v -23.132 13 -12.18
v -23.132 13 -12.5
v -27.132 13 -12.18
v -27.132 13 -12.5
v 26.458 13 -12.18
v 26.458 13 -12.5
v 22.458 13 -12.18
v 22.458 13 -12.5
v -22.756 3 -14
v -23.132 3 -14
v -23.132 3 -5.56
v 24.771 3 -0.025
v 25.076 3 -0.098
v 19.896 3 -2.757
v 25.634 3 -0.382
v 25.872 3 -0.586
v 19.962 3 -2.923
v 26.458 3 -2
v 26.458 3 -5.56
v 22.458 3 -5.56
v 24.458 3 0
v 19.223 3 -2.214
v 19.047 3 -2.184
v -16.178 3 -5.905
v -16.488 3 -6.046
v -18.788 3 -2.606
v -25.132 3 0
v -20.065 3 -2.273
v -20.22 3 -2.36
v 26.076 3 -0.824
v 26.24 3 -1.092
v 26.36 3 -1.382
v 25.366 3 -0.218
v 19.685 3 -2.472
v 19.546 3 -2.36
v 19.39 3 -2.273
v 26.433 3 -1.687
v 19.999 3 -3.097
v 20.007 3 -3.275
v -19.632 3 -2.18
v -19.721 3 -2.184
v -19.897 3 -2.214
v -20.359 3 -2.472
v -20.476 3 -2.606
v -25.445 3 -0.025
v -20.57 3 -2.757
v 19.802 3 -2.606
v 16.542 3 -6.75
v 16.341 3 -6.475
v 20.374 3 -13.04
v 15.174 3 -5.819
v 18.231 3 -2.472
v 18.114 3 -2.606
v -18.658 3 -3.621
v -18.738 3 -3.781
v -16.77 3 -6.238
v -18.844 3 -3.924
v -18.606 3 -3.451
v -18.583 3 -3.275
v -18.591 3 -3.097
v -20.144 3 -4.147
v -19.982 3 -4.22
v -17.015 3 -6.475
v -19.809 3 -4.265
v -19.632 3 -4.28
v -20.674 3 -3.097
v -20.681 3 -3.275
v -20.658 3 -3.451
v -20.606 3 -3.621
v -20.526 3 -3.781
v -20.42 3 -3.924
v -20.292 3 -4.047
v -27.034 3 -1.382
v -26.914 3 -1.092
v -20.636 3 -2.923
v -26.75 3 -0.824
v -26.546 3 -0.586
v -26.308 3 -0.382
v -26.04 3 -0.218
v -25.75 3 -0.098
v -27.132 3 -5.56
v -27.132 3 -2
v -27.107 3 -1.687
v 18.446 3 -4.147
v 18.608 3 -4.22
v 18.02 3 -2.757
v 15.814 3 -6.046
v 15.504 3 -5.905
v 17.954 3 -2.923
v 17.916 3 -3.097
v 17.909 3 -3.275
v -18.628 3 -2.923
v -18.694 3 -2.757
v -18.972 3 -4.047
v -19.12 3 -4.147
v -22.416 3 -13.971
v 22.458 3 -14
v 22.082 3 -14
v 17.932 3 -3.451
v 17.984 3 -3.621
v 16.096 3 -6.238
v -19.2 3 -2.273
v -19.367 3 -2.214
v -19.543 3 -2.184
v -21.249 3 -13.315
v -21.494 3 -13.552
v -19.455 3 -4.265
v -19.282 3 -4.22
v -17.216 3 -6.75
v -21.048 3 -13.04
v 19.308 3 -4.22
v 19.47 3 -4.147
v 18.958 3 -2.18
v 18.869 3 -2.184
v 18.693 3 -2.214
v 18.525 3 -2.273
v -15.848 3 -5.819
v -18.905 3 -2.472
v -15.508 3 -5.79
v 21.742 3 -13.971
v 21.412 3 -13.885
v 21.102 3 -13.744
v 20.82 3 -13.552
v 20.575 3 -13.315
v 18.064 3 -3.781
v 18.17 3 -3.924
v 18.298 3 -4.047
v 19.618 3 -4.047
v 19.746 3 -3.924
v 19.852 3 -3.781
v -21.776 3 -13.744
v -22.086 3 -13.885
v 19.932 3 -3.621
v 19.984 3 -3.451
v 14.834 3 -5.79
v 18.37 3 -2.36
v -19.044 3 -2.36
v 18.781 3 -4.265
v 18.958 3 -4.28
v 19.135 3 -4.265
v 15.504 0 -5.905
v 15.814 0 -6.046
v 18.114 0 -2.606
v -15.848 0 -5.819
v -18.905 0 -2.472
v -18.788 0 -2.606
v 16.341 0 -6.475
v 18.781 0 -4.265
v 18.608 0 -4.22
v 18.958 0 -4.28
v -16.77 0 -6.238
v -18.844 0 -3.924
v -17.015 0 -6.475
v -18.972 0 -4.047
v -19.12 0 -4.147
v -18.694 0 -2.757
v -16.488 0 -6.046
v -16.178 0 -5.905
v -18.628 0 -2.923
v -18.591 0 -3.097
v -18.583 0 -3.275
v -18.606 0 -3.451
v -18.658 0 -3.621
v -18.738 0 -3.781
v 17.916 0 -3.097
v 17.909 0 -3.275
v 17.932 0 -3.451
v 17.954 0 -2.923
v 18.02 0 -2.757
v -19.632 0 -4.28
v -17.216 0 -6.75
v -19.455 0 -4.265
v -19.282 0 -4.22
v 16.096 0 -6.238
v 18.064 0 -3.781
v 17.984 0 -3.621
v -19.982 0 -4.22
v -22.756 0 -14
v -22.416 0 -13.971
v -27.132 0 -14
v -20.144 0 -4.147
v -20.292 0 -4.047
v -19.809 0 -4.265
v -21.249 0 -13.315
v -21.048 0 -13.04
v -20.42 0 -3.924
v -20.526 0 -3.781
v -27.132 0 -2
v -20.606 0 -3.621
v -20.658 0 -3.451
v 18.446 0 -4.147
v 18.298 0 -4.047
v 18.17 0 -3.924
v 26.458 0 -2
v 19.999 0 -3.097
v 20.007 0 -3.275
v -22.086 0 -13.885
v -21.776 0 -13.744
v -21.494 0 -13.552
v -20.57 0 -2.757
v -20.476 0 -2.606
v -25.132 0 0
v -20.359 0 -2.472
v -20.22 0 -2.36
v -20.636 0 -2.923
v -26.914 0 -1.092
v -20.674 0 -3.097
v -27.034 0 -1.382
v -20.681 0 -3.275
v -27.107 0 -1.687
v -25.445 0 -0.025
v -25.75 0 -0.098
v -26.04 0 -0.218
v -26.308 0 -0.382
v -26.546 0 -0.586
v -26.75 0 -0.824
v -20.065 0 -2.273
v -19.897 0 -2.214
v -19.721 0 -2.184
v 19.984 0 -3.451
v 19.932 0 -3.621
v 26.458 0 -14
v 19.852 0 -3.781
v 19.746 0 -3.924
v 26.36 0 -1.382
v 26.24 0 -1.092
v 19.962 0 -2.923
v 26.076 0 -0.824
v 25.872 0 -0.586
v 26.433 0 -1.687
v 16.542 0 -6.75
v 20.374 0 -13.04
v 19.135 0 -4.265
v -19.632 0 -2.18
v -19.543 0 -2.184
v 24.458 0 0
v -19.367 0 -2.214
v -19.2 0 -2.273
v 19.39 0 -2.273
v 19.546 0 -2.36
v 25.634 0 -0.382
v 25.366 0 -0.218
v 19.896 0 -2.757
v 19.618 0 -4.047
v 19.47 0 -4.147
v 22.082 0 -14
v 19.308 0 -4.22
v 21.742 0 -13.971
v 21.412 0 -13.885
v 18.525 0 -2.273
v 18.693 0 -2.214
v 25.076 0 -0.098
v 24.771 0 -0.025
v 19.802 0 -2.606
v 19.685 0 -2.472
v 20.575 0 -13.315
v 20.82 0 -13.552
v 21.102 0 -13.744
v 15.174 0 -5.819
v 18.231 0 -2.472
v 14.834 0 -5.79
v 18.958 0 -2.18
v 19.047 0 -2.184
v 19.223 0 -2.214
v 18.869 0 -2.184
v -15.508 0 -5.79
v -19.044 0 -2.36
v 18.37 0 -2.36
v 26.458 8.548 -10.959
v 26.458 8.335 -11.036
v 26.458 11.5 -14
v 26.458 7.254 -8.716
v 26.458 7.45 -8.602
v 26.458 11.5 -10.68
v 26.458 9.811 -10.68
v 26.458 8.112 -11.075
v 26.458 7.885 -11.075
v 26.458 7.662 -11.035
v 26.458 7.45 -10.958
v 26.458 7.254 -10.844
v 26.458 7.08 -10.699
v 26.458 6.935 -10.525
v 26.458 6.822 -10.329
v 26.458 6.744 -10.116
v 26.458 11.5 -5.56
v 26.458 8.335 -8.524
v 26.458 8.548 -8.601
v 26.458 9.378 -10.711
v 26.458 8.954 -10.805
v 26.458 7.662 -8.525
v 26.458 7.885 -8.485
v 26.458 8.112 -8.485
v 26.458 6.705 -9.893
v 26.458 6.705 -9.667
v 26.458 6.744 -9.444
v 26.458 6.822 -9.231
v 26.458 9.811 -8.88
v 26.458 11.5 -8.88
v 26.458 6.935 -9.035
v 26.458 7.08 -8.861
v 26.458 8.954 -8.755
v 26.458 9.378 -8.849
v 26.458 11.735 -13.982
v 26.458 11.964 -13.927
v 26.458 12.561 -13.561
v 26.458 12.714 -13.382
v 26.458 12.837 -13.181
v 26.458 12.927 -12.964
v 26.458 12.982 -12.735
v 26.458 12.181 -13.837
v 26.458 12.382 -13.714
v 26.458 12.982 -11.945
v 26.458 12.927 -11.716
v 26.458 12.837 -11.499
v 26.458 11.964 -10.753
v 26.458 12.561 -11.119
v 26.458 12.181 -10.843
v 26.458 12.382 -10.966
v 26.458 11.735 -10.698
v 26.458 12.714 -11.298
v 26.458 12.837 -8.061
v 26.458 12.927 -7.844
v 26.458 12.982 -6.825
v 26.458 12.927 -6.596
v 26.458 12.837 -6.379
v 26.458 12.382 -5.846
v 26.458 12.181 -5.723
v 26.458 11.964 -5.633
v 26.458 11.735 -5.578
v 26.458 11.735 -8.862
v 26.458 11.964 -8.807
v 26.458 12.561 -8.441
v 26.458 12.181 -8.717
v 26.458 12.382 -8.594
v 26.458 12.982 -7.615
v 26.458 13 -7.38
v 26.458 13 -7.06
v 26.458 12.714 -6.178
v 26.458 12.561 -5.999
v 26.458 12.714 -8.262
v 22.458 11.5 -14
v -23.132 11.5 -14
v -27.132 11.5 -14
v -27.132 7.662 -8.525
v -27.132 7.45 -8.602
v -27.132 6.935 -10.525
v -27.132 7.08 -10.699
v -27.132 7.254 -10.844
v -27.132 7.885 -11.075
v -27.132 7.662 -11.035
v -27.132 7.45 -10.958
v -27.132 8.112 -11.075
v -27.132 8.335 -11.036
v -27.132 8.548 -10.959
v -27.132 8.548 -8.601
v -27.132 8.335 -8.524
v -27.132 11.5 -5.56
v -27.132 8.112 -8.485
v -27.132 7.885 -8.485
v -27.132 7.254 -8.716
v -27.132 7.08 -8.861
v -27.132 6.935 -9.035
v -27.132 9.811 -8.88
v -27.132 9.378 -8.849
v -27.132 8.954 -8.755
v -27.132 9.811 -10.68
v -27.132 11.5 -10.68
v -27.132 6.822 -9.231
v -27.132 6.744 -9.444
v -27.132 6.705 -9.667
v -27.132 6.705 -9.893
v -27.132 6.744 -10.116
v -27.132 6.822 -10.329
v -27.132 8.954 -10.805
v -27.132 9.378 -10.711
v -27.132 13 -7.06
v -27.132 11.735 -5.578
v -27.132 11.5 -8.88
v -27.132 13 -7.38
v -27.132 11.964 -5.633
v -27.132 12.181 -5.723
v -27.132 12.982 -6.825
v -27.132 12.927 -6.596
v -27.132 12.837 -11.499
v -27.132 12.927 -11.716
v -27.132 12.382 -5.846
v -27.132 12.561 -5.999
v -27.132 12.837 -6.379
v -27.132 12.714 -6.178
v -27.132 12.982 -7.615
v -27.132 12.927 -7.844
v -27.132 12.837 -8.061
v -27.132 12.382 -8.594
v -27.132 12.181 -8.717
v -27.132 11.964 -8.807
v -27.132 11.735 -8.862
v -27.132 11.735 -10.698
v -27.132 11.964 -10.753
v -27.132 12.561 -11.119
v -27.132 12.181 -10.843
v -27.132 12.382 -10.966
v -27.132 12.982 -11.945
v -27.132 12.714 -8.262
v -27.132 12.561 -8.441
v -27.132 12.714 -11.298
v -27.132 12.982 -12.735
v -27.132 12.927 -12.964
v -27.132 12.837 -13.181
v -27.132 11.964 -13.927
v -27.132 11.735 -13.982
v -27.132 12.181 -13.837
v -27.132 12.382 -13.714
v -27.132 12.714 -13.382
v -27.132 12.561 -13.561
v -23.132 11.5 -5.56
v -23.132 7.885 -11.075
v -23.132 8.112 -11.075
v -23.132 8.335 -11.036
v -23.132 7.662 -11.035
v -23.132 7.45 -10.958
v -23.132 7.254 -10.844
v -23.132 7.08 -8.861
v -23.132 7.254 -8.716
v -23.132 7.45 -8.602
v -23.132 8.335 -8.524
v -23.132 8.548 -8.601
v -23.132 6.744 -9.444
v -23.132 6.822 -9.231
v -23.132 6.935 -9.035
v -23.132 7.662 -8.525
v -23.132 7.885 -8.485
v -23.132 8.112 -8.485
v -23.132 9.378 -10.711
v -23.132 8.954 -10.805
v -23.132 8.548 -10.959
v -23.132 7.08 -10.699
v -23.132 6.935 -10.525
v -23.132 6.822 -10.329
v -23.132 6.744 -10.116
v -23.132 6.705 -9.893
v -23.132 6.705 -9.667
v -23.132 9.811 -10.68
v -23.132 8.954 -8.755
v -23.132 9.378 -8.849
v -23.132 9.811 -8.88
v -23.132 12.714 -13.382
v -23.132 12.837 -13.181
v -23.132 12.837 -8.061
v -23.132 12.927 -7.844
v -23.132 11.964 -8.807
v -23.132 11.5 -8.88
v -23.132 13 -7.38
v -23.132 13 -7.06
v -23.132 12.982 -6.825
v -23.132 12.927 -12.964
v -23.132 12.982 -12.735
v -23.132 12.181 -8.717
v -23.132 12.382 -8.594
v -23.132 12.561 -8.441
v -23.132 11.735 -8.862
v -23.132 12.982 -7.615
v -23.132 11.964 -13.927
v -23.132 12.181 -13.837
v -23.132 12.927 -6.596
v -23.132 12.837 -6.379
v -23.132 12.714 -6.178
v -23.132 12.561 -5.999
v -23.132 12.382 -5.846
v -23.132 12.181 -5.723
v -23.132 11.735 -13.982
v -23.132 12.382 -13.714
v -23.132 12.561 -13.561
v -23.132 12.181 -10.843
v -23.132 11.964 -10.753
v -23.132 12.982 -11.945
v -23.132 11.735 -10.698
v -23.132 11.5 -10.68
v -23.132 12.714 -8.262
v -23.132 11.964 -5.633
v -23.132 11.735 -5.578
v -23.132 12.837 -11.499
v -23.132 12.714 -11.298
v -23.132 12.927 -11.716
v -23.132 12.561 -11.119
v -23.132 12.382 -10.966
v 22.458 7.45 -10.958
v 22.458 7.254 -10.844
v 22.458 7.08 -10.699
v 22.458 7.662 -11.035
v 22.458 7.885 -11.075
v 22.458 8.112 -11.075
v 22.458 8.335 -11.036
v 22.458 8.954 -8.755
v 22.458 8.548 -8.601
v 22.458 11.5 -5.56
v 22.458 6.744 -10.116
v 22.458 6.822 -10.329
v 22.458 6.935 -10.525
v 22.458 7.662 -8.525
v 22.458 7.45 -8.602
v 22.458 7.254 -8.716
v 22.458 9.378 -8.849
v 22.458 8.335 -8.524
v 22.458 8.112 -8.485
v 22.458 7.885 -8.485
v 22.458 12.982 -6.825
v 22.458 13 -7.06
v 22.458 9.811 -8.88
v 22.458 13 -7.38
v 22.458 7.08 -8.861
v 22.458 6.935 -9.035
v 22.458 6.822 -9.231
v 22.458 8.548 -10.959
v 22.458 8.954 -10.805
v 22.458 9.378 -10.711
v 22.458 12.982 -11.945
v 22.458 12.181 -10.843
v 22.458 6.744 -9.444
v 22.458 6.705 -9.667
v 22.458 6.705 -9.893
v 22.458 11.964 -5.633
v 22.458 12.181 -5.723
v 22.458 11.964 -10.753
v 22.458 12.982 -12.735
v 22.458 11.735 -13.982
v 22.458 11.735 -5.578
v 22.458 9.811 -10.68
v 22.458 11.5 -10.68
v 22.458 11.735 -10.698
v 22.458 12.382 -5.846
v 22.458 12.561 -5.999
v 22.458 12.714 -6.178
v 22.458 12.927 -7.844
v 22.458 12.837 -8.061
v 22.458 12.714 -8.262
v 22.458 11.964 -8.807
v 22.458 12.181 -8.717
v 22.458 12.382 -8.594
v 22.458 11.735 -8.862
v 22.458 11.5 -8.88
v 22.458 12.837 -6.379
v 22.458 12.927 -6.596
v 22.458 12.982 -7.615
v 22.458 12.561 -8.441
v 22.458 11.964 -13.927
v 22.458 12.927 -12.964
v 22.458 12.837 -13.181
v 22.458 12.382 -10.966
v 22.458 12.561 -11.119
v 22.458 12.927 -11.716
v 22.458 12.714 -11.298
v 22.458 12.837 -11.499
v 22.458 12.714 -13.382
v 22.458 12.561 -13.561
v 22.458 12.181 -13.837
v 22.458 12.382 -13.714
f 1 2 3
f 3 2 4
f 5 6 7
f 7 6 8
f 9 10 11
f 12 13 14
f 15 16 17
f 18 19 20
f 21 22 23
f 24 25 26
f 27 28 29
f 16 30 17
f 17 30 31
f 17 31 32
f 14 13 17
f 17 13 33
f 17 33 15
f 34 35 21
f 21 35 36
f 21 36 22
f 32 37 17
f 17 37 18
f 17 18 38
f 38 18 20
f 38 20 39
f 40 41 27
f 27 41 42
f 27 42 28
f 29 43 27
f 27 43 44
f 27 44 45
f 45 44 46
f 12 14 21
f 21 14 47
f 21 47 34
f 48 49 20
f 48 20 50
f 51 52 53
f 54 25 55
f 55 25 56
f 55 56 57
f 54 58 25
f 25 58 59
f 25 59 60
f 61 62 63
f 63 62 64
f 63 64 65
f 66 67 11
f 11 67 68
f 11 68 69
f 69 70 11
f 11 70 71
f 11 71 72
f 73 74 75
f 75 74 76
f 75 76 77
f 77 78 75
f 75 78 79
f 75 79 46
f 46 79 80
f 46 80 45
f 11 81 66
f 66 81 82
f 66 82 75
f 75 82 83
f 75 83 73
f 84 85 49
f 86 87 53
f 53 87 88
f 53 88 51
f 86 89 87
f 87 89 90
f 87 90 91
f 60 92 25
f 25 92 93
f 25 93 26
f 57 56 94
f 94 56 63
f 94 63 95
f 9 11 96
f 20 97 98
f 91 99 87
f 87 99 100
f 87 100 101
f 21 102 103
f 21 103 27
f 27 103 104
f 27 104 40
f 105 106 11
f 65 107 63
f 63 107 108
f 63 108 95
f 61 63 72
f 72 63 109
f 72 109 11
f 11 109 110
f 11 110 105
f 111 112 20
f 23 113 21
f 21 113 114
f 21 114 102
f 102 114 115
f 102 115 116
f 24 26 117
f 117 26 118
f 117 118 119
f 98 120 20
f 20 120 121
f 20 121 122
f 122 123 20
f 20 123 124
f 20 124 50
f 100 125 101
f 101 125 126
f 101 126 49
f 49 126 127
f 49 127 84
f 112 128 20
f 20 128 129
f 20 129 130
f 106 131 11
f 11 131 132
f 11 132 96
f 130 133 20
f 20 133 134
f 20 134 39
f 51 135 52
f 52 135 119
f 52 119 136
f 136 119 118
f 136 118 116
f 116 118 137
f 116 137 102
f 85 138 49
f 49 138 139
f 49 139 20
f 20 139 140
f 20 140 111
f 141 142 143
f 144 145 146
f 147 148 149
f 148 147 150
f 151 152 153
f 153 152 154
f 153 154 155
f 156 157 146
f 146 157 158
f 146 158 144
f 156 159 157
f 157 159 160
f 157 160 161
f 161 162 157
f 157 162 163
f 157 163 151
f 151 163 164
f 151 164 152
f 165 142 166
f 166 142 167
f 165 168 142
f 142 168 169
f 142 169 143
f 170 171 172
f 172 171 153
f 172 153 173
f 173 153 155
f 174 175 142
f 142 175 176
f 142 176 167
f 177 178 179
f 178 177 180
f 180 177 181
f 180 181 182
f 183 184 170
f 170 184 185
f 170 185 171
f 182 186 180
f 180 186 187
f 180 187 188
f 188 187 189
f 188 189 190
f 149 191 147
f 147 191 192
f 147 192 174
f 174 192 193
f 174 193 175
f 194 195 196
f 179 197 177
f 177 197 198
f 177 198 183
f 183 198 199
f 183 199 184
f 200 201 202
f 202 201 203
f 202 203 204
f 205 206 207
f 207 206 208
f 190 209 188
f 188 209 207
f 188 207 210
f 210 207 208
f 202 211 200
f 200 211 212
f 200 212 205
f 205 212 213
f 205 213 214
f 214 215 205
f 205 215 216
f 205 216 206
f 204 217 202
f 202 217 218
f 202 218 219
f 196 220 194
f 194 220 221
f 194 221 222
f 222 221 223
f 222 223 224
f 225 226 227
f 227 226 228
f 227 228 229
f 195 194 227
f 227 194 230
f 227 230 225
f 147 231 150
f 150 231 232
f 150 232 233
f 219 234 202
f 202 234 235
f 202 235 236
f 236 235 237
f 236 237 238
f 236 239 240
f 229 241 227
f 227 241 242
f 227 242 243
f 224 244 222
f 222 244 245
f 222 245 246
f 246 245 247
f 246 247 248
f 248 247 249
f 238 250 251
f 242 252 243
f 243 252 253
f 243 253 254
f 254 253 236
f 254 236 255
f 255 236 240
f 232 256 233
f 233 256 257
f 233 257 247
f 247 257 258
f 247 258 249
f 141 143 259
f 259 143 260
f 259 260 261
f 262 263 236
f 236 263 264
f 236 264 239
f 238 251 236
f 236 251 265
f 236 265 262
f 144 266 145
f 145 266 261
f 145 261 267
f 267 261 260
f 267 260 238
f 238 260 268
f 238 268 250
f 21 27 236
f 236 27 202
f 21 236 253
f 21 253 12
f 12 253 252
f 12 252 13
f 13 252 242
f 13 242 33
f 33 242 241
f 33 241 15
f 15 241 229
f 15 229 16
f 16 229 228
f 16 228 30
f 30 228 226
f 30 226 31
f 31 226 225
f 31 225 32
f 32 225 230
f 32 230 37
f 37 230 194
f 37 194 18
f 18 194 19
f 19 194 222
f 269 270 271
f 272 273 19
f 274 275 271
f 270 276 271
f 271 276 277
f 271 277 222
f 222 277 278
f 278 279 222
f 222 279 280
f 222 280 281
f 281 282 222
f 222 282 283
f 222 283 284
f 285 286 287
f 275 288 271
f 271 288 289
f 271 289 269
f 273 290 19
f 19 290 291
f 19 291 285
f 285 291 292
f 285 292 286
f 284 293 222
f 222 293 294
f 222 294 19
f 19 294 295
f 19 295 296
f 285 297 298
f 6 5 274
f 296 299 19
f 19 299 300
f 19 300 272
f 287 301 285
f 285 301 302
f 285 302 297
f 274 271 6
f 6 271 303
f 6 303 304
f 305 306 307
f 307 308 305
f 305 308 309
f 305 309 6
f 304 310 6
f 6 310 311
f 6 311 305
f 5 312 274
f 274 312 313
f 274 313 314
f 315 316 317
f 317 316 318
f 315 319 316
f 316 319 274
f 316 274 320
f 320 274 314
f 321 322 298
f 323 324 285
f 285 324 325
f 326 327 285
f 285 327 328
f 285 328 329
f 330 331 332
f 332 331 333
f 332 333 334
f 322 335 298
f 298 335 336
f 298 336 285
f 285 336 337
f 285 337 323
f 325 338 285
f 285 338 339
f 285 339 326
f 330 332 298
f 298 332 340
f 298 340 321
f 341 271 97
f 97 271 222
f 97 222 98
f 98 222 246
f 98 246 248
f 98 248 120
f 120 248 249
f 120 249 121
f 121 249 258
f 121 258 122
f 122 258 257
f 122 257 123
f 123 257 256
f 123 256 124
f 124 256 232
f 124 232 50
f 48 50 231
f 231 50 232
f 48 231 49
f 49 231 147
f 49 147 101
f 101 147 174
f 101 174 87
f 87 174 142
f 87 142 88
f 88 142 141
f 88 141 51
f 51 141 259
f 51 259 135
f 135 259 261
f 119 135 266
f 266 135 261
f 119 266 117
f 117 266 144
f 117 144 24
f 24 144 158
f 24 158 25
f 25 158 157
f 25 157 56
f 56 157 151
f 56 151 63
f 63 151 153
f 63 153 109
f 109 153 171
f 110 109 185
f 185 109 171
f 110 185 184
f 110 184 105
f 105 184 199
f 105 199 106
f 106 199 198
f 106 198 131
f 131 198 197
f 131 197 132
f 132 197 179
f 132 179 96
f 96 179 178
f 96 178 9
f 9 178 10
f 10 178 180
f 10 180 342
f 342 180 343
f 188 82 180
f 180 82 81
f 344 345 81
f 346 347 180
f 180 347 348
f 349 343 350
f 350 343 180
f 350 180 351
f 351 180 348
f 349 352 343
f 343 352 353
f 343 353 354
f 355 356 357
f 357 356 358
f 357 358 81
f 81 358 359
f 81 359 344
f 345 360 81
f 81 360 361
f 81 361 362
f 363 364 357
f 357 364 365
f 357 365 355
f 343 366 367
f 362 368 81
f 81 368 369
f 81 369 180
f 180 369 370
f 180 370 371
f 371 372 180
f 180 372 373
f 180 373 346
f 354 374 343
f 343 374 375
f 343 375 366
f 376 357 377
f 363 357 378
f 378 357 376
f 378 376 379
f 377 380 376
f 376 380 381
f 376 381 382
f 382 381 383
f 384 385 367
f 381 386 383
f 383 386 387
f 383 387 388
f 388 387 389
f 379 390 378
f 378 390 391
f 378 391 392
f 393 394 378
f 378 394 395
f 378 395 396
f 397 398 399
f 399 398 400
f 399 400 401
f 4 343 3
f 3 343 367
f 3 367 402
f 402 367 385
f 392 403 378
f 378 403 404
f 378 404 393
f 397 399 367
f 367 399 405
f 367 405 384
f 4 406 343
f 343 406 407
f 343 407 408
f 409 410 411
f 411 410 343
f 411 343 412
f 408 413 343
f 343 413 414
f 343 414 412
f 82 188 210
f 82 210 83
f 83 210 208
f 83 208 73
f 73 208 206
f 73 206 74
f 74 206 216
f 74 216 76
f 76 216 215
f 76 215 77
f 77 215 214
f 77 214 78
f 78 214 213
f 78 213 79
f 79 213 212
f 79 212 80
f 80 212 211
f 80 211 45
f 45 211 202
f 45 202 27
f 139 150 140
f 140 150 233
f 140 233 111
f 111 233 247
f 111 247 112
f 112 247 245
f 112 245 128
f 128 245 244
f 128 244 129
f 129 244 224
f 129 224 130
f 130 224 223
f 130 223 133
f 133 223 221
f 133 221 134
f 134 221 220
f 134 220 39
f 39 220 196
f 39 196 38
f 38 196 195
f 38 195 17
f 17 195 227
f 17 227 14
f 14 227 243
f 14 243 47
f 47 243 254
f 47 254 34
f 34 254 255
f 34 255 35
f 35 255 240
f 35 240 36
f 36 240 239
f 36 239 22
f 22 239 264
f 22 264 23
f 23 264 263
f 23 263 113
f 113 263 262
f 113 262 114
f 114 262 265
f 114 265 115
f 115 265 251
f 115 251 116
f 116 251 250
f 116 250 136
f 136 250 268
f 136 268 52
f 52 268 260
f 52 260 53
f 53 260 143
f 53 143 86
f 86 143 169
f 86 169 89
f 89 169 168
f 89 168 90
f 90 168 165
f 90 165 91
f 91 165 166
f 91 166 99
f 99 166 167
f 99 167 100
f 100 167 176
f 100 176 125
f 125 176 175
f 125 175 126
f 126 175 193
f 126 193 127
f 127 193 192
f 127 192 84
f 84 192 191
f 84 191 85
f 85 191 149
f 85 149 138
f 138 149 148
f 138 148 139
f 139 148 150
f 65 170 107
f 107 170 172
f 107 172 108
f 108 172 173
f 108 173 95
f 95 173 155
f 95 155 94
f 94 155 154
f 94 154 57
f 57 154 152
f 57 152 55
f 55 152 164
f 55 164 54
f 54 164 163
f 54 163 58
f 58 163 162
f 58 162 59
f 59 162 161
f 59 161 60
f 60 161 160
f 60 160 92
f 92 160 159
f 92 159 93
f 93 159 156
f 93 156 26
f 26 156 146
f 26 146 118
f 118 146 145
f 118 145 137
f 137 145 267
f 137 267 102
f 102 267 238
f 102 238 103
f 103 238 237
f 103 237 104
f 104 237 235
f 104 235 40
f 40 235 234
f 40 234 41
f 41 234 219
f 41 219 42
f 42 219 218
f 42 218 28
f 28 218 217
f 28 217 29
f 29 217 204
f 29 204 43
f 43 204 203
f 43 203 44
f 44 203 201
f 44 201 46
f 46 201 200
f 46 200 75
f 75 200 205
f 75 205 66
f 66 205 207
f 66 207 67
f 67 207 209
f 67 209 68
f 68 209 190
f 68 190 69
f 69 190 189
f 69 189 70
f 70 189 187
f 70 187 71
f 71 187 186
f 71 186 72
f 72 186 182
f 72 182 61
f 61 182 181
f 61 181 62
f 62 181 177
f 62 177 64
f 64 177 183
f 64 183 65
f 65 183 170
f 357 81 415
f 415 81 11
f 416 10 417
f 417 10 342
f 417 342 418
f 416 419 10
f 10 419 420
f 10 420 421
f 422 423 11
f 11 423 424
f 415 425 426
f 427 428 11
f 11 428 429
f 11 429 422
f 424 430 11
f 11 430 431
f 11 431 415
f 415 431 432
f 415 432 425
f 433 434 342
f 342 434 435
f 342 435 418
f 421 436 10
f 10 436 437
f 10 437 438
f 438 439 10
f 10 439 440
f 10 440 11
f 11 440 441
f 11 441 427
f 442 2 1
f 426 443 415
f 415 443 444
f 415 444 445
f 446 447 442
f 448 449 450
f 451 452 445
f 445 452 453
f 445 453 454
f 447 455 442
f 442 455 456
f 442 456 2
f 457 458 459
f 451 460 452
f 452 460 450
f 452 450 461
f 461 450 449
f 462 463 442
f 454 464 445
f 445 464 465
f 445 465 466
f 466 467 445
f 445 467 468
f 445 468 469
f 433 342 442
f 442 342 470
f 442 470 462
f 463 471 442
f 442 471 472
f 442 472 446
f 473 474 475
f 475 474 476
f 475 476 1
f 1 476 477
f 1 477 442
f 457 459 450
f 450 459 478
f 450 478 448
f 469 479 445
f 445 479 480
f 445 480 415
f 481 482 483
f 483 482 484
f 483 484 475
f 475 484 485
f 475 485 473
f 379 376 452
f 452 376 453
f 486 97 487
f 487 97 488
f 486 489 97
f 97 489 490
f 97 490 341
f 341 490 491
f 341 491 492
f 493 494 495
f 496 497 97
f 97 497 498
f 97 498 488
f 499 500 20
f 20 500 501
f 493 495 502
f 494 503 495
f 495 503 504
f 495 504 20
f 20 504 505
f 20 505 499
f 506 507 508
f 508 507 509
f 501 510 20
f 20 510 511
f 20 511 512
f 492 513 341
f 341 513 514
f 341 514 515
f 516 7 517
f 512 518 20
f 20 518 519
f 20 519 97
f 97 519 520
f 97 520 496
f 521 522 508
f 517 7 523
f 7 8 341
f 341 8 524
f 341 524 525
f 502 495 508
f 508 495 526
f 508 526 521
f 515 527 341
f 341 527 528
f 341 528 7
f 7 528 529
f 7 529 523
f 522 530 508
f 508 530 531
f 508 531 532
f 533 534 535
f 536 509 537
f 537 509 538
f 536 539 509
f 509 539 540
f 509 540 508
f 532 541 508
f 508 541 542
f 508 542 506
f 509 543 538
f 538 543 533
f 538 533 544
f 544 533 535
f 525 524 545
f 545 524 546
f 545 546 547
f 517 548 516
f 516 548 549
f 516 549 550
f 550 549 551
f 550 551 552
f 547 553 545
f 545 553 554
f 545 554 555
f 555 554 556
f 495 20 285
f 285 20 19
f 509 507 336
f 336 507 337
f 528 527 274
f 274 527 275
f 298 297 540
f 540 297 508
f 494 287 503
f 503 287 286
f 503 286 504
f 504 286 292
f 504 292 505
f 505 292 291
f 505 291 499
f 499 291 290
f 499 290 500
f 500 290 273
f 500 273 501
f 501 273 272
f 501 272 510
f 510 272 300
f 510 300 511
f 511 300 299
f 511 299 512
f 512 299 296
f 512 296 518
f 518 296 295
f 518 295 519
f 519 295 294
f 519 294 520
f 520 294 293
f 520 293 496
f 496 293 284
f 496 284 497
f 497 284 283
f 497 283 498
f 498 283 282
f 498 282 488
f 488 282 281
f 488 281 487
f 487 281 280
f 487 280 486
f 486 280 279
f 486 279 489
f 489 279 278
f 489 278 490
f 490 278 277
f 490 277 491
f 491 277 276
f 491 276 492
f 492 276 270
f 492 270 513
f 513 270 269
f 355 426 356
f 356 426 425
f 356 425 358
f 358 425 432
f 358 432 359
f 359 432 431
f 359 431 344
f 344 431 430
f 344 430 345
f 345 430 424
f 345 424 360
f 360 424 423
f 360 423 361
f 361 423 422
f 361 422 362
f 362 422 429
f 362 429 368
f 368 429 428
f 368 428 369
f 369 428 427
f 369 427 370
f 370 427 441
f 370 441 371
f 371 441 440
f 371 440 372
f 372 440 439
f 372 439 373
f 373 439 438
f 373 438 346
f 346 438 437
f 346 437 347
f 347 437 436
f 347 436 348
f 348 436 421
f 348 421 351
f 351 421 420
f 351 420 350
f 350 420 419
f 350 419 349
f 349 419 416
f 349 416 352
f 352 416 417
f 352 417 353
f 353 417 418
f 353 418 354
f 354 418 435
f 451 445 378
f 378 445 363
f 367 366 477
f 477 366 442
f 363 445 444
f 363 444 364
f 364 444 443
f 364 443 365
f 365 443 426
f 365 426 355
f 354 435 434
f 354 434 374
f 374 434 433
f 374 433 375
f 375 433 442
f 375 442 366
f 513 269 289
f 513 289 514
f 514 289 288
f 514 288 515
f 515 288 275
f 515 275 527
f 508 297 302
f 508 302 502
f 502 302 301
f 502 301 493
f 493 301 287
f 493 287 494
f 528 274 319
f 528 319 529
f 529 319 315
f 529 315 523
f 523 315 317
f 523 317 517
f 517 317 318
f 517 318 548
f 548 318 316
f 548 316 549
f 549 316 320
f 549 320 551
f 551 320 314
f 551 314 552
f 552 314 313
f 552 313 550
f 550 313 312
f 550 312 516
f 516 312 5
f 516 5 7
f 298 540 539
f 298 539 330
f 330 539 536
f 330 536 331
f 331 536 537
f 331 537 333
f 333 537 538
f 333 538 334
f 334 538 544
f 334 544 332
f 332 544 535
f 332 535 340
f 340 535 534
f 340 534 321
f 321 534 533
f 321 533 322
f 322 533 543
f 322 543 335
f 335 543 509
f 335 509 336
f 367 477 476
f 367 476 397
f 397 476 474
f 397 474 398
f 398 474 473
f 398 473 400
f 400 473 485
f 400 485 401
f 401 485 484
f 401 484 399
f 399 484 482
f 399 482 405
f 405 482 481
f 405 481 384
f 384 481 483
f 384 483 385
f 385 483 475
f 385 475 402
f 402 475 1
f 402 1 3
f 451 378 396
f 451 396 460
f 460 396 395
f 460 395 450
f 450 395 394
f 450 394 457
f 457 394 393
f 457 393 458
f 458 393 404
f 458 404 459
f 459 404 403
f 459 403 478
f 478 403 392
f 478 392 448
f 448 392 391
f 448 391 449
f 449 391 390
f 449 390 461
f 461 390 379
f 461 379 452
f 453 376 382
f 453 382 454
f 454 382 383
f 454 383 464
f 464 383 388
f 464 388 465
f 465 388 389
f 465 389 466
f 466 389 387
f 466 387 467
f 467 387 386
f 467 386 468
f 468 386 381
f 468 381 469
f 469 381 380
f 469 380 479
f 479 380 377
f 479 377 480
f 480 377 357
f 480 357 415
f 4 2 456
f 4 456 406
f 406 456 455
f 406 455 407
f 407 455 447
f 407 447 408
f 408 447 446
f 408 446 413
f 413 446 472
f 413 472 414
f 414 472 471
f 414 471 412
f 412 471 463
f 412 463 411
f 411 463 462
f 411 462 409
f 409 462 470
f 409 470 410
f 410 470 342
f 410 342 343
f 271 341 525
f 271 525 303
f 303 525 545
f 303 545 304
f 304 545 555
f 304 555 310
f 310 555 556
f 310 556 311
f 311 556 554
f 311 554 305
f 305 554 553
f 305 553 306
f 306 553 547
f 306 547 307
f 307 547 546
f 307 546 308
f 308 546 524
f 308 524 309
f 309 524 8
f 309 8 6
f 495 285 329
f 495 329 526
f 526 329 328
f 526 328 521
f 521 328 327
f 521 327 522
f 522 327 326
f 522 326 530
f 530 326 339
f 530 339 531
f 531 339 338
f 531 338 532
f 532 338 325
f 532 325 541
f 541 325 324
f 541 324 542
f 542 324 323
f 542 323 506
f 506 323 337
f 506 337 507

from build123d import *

# Parameters (mm, degrees)
SKETCH1_R           = 1.05
BOSS_EXTRUDE1_DEPTH = 3
SKETCH2_W           = 4
SKETCH2_H           = 8.44
BOSS_EXTRUDE2_DEPTH = 10
SKETCH3_R           = 1.3
CUT_EXTRUDE1_DEPTH  = 57.893656061
FILLET1_R           = 3
FILLET6_R           = 1.5


with BuildPart() as part:
    # Sketch1 → Boss-Extrude1 (new body)
    with BuildSketch(Plane(origin=(0, 0, 0), x_dir=(1, 0, 0), z_dir=(0, 1, 0))):
        with BuildLine():
            Line((0, 0), (24.457992021, 0))
            ThreePointArc((24.457992021, 0), (25.872205583, 0.585786438), (26.457992021, 2))
            Line((26.457992021, 2), (26.457992021, 14))
            Line((26.457992021, 14), (22.081671712, 14))
            ThreePointArc((22.081671712, 14), (21.102023762, 13.743642708), (20.373515707, 13.040289893))
            Line((20.373515707, 13.040289893), (16.542468334, 6.749710107))
            ThreePointArc((16.542468334, 6.749710107), (15.813960279, 6.046357292), (14.834312329, 5.79))
            Line((14.834312329, 5.79), (-15.508328288, 5.79))
            ThreePointArc((-15.508328288, 5.79), (-16.487976238, 6.046357292), (-17.216484293, 6.749710107))
            Line((-17.216484293, 6.749710107), (-21.047531666, 13.040289893))
            ThreePointArc((-21.047531666, 13.040289893), (-21.776039721, 13.743642708), (-22.755687671, 14))
            Line((-22.755687671, 14), (-27.132007979, 14))
            Line((-27.132007979, 14), (-27.132007979, 2))
            ThreePointArc((-27.132007979, 2), (-26.546221542, 0.585786438), (-25.132007979, 0))
            Line((-25.132007979, 0), (0, 0))
        make_face()
        with Locations(Location((18.957992021, 3.23, 0), (0, 0, 270))):
            Circle(SKETCH1_R, mode=Mode.SUBTRACT)
        with Locations(Location((-19.632007979, 3.23, 0), (0, 0, 270))):
            Circle(SKETCH1_R, mode=Mode.SUBTRACT)
    extrude(amount=BOSS_EXTRUDE1_DEPTH)

    # Sketch2 → Boss-Extrude2 (add)
    with BuildSketch(Plane(origin=(0, 3, 0), x_dir=(1, 0, 0), z_dir=(0, 1, 0))):
        with Locations((-25.132007979, 9.78)):
            Rectangle(SKETCH2_W, SKETCH2_H)
        with Locations((24.457992021, 9.78)):
            Rectangle(SKETCH2_W, SKETCH2_H)
    extrude(amount=BOSS_EXTRUDE2_DEPTH)

    # Sketch3 → Cut-Extrude1 (cut, through all)
    with BuildSketch(Plane(origin=(26.457992021, 0, 0), x_dir=(0, 0, -1), z_dir=(1, 0, 0))):
        with BuildLine():
            Line((10.68, 13), (8.88, 13))
            Line((8.88, 13), (8.88, 8.938083152))
            ThreePointArc((8.88, 8.938083152), (9.78, 9.3), (10.68, 8.938083152))
            Line((10.68, 8.938083152), (10.68, 13))
        make_face()
        with Locations((9.78, 8)):
            Circle(SKETCH3_R)
    extrude(amount=-CUT_EXTRUDE1_DEPTH, mode=Mode.SUBTRACT)

    # Fillet1
    fillet1_edges = [part.edges().sort_by_distance(p)[0] for p in [
        (-25.132007979, 8.938083152, -10.68),
        (24.457992021, 8.938083152, -10.68),
        (-25.132007979, 8.938083152, -8.88),
        (24.457992021, 8.938083152, -8.88),
    ]]
    fillet(fillet1_edges, radius=FILLET1_R)

    # Fillet6
    fillet6_edges = [part.edges().sort_by_distance(p)[0] for p in [
        (-25.132007979, 13, -5.56),
        (-25.132007979, 13, -14),
        (24.457992021, 13, -14),
        (24.457992021, 13, -5.56),
        (24.457992021, 13, -10.68),
        (24.457992021, 13, -8.88),
        (-25.132007979, 13, -8.88),
        (-25.132007979, 13, -10.68),
    ]]
    fillet(fillet6_edges, radius=FILLET6_R)


solid = part.part
